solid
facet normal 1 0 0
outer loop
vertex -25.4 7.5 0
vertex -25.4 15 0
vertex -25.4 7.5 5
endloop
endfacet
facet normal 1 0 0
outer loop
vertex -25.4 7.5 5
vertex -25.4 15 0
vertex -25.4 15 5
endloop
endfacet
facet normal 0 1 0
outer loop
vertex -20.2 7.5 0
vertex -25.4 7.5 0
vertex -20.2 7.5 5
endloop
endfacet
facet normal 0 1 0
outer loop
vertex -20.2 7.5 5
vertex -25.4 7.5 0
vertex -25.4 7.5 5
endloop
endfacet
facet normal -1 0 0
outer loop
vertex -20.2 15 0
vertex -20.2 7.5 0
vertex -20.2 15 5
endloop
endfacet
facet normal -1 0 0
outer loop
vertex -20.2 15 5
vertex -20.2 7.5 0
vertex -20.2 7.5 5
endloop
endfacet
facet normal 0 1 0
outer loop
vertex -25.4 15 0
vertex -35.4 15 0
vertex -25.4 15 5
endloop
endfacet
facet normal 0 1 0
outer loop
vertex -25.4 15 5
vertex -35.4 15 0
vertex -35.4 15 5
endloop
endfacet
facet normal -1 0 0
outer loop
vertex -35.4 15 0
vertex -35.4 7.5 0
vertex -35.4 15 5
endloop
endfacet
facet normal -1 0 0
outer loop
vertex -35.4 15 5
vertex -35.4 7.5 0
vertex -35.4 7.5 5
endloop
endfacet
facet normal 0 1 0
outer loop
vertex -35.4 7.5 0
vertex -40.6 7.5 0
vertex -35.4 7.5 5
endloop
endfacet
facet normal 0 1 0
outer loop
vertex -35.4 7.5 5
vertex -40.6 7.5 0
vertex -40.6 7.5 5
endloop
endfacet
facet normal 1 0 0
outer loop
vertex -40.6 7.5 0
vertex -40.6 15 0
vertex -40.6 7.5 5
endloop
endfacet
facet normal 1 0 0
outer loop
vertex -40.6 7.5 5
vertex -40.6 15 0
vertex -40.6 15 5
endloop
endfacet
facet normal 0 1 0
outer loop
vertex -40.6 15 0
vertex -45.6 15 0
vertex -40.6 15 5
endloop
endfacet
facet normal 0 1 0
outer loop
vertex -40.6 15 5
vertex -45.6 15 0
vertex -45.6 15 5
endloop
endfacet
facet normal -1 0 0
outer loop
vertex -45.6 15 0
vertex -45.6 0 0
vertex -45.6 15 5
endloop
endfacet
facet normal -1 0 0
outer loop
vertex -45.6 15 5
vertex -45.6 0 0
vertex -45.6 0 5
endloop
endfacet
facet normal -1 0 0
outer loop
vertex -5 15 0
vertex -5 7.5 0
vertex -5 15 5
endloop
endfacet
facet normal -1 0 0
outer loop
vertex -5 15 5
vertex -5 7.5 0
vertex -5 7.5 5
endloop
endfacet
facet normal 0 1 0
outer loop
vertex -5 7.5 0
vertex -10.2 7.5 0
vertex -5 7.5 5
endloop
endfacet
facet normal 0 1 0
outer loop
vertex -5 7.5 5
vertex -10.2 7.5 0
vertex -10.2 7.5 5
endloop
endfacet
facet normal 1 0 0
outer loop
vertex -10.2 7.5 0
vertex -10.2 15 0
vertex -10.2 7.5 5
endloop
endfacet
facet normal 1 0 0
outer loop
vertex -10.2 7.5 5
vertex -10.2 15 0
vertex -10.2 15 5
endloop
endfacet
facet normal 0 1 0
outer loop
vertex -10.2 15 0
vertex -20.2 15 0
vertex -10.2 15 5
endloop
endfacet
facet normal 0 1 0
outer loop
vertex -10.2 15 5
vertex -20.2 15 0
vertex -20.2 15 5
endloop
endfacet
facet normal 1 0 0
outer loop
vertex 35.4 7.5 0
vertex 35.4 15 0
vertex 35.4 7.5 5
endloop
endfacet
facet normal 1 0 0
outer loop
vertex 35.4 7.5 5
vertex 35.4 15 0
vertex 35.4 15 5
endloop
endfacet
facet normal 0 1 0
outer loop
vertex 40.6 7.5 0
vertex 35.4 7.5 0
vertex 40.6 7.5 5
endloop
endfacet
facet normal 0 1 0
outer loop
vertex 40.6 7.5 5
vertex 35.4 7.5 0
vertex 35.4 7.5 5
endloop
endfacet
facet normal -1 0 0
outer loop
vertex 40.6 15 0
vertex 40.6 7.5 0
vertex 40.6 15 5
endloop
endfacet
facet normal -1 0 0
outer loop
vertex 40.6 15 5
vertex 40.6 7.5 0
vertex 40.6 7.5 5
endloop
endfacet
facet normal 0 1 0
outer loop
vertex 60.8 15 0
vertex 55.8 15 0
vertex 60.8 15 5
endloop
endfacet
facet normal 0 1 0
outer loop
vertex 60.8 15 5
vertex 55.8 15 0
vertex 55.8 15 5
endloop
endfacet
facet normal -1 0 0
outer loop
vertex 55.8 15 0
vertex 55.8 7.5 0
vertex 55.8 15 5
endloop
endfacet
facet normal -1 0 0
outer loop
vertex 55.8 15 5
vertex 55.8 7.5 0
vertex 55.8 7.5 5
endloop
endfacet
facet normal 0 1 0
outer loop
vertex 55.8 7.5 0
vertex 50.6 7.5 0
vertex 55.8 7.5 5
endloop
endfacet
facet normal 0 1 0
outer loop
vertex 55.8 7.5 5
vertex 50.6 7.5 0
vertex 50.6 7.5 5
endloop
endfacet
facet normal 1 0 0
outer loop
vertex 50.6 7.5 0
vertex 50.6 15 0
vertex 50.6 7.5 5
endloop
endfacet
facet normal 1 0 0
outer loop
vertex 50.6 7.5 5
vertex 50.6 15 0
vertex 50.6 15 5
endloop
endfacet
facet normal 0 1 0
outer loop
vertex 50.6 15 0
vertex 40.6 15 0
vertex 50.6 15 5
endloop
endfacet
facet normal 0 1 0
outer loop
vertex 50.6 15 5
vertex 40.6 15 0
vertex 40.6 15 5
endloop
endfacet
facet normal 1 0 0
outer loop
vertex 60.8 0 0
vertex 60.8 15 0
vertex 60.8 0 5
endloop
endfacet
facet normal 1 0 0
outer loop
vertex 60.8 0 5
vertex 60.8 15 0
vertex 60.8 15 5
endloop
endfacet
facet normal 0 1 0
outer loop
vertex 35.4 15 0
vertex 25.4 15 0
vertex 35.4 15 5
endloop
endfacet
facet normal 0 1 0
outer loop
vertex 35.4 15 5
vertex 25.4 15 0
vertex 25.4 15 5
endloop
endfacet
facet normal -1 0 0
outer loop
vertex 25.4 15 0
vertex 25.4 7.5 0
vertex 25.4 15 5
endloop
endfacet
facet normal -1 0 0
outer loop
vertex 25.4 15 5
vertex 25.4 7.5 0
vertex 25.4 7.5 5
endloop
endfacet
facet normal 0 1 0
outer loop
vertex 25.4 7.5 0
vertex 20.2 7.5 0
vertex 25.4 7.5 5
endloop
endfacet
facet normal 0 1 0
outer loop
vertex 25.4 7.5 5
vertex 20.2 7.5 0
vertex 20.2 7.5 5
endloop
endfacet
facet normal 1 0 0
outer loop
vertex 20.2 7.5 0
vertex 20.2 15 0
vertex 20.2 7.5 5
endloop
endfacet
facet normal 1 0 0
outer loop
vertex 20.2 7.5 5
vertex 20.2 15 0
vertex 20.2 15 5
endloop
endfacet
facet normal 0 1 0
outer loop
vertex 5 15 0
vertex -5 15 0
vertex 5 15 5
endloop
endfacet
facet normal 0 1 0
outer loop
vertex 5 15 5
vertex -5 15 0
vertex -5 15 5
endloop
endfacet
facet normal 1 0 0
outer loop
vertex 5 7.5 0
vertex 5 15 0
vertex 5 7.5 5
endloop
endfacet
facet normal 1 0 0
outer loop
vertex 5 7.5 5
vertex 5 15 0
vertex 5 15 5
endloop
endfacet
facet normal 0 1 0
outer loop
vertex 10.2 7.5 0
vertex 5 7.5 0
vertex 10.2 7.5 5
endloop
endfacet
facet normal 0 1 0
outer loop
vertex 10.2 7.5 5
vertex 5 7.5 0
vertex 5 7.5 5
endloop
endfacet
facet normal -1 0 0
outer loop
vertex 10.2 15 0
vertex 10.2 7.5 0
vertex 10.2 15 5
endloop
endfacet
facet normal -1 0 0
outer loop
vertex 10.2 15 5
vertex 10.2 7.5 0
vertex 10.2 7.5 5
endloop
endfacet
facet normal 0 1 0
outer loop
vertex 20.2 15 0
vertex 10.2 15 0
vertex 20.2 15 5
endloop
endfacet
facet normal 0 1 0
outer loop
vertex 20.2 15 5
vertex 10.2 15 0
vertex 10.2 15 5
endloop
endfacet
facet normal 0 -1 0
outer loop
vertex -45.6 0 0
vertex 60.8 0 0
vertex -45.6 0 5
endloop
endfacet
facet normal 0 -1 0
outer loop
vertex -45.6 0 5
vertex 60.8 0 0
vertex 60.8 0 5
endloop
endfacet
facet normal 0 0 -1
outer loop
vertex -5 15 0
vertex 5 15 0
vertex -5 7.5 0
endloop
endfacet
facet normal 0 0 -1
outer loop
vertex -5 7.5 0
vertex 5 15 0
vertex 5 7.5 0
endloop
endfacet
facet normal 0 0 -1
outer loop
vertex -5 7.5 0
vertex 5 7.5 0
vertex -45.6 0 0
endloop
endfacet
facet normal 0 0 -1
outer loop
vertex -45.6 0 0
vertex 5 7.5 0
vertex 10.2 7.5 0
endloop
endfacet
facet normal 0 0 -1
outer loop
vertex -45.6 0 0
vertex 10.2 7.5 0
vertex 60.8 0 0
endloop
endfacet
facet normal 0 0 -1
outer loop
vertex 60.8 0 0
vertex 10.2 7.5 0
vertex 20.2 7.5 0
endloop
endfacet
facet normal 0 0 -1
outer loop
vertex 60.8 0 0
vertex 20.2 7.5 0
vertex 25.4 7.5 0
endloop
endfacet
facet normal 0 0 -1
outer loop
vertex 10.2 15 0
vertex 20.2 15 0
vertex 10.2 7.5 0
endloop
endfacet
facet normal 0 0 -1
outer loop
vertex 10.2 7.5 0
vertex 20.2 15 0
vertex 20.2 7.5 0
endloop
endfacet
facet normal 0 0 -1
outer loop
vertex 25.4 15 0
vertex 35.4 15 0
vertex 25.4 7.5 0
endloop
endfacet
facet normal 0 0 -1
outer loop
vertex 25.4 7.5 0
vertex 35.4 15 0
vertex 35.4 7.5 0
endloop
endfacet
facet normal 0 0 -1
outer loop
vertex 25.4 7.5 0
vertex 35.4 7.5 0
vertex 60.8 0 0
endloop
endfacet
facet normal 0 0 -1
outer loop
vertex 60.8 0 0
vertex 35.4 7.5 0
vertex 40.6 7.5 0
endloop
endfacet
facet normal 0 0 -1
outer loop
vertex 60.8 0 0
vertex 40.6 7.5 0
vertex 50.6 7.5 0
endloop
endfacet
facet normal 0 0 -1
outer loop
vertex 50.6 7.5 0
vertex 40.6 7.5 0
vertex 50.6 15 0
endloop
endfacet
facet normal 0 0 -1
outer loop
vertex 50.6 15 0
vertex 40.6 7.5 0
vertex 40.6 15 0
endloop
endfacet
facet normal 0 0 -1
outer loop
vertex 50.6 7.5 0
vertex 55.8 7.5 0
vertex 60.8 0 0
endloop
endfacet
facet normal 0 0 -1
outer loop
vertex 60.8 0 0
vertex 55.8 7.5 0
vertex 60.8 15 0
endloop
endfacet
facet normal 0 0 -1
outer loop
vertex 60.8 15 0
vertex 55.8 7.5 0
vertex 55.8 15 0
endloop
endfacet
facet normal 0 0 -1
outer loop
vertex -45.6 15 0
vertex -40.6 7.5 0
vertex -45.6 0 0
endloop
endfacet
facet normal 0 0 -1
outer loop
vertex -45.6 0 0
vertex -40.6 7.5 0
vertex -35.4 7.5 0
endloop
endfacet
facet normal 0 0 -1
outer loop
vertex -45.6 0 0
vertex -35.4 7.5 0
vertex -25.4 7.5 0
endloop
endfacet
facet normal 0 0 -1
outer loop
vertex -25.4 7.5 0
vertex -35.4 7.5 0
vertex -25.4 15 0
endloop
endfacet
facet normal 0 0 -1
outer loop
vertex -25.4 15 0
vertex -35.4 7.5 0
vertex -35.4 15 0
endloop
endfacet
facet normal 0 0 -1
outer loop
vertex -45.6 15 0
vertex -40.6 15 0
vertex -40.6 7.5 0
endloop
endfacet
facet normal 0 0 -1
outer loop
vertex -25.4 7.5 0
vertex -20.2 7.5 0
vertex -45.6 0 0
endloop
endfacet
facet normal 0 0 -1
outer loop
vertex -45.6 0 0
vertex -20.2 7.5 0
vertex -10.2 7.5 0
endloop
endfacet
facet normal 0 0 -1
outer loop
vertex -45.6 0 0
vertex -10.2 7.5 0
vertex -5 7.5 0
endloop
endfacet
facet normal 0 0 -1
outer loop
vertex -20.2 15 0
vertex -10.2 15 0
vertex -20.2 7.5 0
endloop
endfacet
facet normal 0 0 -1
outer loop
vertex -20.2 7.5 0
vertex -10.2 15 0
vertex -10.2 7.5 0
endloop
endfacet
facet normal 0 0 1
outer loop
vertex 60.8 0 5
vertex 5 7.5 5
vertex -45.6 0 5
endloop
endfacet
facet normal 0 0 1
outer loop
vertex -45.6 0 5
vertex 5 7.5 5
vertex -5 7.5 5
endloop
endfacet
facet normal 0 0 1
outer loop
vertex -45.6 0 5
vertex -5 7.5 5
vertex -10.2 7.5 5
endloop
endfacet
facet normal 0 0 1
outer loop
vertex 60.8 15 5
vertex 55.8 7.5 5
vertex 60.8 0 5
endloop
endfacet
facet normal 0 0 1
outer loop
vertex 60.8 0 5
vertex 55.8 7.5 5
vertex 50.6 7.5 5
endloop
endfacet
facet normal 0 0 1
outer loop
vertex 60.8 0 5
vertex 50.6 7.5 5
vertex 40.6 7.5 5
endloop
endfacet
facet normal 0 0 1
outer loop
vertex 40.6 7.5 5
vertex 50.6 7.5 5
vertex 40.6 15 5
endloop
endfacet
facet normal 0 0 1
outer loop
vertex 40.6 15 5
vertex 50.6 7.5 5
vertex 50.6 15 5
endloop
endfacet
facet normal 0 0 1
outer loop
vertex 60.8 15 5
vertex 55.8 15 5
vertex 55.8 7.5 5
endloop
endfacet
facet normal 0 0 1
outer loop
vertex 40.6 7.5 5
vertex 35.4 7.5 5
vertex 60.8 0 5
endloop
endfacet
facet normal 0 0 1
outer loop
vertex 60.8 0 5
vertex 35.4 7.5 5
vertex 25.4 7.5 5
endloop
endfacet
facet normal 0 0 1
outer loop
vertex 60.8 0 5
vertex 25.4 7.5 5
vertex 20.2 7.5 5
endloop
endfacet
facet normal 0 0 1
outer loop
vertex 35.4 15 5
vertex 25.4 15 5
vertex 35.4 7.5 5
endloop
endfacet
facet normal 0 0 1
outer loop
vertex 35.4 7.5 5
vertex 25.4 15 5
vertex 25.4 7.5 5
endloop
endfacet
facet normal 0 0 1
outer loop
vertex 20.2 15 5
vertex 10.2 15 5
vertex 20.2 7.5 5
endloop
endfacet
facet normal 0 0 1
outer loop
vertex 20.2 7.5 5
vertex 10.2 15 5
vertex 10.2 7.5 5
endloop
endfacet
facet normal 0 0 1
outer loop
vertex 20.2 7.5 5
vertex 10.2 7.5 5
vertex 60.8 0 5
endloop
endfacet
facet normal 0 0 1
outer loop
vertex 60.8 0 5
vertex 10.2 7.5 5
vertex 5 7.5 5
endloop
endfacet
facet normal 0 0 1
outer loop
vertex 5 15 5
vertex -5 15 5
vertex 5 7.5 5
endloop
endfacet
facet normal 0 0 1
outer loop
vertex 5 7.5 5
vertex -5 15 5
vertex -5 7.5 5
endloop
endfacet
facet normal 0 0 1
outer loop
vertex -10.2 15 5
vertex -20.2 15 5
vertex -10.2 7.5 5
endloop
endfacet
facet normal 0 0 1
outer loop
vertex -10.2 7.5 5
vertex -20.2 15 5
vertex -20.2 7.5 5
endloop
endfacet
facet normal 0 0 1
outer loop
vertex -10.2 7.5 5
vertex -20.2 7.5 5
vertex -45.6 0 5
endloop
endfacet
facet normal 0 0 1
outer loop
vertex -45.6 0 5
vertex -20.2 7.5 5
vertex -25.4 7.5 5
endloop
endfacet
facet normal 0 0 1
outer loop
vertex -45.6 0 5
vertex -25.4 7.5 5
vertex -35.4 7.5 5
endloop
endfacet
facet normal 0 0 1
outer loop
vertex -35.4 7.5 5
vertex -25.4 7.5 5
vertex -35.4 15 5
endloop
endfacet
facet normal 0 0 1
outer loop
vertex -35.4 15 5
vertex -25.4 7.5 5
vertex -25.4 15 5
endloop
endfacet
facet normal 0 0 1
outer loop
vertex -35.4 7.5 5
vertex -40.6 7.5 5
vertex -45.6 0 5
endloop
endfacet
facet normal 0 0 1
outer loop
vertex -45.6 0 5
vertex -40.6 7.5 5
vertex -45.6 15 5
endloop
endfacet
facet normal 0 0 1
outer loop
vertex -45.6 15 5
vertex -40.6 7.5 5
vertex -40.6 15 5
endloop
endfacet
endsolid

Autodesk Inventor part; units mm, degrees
ref_plane "YZ Plane" through (0, 0, 0) normal (1, 0, 0) x (0, 1, 0)
ref_plane "XZ Plane" through (0, 0, 0) normal (0, 1, 0) x (-1, 0, 0)
ref_plane "XY Plane" through (0, 0, 0) normal (0, 0, 1) x (1, 0, 0)
sketch "Sketch1" plane through (0, 0, 0) normal (0, 0, 1) x (1, 0, 0)
  line L0 (0, 0) -> (0, 15)
  line L1 (0, 15) -> (5, 15)
  line L2 (5, 15) -> (5, 7.5)
  line L3 (5, 7.5) -> (10.2, 7.5)
  line L4 (10.2, 7.5) -> (10.2, 15)
  line L5 (10.2, 15) -> (15.2, 15)
  line L6 (15.2, 15) -> (15.2, 0)
  line L7 (15.2, 0) -> (0, 0)
  dimension "d0" = 15
  dimension "d1" = 5.2
  dimension "d2" = 5
  dimension "d3" = 5
  dimension "d4" = 7.5
extrude "Extrusion1" add sketch "Sketch1" along normal blind 5
mirror "Mirror1" about plane through (15.2, 0, 0) normal (1, 0, 0) of "Extrusion1"
mirror "Mirror2" about plane through (30.4, 15, 0) normal (1, 0, 0) of "Extrusion1", "Mirror1"
mirror "Mirror4" about plane through (0, 15, 0) normal (-1, 0, 0) of "Extrusion1"
mirror "Mirror5" about plane through (-15.2, 0, 0) normal (-1, 0, 0) of "Extrusion1", "Mirror4"
ref_plane "Work Plane3" through (45.6, 7.5, 0) normal (1, 0, 0) x (0, 0, -1)
properties part number "brace"
